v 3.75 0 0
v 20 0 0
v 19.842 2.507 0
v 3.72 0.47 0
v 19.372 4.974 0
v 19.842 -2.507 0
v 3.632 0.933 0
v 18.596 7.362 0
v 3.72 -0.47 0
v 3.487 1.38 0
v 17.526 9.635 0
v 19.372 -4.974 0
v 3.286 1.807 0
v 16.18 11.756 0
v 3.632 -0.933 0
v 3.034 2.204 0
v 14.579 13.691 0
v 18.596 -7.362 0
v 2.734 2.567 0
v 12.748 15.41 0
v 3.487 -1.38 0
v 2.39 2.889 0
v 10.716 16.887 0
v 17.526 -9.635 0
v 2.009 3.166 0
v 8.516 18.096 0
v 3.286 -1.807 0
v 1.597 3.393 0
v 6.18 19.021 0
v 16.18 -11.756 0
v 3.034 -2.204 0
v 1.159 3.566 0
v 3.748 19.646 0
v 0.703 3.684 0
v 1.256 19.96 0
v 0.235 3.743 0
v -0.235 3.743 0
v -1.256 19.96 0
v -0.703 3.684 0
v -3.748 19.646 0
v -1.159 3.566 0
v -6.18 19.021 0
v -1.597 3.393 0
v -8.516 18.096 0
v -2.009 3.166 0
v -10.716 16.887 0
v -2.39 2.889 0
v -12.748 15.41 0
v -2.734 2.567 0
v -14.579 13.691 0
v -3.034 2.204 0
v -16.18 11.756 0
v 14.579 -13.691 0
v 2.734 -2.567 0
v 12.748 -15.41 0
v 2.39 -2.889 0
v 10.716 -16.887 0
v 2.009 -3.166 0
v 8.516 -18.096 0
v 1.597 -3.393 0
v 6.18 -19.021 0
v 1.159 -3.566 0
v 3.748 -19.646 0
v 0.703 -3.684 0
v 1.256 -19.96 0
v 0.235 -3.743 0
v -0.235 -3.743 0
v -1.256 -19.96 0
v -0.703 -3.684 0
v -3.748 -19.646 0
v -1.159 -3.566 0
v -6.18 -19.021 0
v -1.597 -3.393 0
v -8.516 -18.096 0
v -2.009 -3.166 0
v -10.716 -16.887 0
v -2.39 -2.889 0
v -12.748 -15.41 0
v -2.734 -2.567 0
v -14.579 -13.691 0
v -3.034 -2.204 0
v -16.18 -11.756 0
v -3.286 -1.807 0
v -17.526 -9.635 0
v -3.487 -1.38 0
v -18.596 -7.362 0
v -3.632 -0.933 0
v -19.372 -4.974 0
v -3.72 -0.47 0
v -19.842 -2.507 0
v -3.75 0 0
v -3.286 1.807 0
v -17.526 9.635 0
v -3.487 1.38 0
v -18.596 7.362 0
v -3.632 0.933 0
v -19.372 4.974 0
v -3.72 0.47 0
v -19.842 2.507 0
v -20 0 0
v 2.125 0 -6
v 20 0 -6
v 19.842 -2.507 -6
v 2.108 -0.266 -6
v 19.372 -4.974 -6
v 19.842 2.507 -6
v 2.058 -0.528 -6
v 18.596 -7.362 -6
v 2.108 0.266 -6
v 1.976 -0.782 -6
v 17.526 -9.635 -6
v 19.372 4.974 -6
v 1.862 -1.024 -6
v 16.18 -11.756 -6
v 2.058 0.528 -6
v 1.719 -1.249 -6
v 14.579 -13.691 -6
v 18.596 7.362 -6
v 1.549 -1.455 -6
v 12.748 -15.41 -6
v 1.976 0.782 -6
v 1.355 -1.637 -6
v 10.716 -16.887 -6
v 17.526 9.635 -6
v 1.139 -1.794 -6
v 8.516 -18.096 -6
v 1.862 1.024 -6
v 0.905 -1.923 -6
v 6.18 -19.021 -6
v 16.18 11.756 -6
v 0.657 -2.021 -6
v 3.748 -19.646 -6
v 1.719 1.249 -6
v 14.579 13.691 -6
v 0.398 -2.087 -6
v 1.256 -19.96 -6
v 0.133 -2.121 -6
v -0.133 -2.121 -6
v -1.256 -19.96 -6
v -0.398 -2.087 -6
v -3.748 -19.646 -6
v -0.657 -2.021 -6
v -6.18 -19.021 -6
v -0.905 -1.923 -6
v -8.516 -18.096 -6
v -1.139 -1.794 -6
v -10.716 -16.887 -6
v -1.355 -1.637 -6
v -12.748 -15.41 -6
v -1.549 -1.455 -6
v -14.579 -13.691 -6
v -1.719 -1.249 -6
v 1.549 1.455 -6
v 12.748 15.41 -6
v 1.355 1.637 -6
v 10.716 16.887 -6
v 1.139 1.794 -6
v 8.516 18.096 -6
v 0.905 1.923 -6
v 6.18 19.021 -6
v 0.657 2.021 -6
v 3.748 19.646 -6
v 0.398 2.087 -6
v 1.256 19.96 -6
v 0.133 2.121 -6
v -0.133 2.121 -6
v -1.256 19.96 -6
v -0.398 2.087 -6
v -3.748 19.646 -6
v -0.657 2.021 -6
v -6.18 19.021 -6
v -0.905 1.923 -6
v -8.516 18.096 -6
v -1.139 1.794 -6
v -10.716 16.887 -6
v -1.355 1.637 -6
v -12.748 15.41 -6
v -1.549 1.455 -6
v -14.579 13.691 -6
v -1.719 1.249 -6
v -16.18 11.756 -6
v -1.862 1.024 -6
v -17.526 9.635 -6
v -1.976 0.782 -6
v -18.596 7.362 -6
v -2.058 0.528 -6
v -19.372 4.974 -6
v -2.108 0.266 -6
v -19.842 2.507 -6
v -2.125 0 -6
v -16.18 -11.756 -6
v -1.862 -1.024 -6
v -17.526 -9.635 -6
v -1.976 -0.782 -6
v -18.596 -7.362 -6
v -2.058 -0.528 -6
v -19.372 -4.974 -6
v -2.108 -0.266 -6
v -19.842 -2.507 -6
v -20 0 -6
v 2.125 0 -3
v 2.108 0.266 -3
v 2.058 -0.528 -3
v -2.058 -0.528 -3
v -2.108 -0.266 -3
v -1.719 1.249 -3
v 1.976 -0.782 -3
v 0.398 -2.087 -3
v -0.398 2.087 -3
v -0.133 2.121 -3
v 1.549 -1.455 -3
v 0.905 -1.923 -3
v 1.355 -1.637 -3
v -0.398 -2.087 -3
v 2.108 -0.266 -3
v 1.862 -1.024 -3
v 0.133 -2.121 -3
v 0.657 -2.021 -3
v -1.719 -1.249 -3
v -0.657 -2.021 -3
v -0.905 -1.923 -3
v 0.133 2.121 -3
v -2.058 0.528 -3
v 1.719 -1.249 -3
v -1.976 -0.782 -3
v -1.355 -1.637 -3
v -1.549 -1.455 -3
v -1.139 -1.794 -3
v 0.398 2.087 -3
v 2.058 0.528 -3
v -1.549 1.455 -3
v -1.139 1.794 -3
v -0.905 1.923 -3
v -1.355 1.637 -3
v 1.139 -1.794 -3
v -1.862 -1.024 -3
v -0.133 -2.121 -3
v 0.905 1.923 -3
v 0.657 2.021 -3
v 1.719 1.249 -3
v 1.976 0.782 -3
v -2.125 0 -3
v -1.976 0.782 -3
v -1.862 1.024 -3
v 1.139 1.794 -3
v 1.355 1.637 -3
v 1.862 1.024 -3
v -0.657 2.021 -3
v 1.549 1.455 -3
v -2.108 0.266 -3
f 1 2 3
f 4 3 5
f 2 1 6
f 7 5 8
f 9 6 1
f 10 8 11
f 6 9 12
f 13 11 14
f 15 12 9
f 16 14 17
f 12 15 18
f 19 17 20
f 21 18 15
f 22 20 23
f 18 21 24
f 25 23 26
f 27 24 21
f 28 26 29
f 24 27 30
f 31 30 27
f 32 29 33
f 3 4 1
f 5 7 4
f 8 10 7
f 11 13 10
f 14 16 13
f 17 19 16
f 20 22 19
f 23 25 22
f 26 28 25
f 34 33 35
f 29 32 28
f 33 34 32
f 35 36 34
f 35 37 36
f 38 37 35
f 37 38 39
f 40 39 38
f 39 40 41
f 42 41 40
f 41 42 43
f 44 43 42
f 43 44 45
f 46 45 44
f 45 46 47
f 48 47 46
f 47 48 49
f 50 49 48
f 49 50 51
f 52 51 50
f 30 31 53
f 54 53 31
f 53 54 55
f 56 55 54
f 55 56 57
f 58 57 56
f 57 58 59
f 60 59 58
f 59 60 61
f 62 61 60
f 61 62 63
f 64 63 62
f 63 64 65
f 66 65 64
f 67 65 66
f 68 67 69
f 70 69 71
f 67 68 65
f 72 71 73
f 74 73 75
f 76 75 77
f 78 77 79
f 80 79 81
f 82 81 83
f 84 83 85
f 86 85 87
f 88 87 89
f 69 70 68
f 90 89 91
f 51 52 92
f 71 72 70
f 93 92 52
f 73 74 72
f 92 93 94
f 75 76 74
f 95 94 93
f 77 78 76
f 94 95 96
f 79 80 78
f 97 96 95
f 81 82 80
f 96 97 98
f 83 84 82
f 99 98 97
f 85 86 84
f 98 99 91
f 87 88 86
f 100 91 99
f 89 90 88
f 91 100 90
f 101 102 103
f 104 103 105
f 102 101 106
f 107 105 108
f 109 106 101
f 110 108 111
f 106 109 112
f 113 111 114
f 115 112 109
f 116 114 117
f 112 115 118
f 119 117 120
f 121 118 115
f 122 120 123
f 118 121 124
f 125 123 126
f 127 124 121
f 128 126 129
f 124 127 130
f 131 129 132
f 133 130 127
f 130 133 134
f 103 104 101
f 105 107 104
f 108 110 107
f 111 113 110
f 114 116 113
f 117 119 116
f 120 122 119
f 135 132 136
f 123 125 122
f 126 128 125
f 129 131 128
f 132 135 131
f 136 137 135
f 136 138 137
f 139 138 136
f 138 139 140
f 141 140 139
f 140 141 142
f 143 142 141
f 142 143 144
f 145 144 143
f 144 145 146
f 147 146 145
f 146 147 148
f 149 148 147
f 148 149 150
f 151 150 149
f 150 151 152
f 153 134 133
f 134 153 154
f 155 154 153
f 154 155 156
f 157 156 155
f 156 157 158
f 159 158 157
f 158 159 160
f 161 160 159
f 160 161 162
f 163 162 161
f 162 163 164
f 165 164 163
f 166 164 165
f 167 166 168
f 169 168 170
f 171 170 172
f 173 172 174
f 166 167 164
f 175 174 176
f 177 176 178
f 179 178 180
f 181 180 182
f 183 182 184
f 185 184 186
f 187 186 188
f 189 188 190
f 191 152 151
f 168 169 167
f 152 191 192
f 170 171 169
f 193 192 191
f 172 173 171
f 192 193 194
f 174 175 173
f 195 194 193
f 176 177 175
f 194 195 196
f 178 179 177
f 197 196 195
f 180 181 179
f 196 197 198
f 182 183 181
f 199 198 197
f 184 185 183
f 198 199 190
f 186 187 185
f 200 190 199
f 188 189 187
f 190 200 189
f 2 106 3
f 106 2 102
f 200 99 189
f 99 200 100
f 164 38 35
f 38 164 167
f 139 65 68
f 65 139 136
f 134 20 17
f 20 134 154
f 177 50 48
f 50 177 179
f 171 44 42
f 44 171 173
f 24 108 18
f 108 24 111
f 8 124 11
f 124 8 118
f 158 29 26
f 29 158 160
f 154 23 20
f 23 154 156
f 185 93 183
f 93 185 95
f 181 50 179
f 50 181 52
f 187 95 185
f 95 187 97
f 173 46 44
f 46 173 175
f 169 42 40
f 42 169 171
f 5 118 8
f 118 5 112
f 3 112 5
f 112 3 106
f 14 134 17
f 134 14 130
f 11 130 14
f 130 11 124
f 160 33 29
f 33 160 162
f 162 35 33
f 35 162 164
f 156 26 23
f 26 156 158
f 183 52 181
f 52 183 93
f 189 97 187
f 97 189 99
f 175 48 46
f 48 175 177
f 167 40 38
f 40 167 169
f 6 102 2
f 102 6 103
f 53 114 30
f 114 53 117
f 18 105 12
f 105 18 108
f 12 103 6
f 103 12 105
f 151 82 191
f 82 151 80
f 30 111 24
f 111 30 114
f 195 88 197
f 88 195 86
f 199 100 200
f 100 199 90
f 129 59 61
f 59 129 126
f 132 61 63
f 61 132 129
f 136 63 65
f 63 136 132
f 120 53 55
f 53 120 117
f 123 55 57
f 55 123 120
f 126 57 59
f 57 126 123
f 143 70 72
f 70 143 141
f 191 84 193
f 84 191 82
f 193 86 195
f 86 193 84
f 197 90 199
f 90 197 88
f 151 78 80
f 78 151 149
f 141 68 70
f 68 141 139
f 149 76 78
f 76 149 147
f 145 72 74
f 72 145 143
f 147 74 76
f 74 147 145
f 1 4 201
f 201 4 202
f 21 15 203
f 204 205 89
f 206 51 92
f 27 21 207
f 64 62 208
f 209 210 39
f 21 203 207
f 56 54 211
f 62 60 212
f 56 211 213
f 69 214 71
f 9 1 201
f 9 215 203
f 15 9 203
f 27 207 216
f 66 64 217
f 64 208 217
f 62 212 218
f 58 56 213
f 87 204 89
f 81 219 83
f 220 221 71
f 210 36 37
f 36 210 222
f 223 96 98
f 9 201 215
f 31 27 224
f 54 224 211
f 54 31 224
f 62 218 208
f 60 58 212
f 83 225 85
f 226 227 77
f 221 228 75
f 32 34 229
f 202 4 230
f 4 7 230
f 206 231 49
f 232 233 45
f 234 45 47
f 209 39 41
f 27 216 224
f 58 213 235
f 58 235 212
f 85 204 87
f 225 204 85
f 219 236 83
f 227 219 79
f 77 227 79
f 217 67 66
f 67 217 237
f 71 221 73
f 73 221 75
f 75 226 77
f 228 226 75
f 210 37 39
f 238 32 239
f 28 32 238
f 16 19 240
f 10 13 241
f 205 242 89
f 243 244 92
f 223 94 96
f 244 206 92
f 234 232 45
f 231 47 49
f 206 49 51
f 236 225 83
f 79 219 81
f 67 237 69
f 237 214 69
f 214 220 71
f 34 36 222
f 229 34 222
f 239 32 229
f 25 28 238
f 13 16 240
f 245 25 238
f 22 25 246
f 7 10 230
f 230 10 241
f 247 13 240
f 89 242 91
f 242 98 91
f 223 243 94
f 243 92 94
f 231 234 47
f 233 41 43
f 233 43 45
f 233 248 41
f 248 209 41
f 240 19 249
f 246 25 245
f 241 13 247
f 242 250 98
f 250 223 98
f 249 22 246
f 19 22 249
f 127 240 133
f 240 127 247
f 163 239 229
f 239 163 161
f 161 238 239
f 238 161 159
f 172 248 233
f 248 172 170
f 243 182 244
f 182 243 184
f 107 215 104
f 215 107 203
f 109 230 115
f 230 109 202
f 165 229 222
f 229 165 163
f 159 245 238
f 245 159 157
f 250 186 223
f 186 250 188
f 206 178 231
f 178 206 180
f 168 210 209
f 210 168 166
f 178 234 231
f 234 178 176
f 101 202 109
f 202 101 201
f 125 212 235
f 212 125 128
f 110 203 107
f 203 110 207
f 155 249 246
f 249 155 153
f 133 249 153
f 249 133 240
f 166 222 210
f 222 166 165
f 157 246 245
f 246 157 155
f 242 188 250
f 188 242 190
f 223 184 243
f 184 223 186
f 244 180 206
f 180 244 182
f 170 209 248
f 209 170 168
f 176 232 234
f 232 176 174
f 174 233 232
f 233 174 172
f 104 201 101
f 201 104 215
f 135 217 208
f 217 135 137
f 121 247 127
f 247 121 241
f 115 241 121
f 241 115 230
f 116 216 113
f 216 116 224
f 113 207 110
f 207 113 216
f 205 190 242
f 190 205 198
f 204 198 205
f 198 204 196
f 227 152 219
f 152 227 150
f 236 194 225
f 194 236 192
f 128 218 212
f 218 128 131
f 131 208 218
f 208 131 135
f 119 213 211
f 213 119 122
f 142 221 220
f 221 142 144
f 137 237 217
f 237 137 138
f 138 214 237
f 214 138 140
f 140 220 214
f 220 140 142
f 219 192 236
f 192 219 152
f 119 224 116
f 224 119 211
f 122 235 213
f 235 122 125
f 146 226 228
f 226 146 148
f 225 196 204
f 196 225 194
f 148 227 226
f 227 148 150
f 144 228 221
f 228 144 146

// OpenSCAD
$fn = 50;


difference() {
	union() {
		translate(v = [0, 0, -6.0000000000]) {
			cylinder(h = 6, r = 10.0000000000);
		}
		translate(v = [0, 0, -6.0000000000]) {
			cylinder(h = 6, r = 20.0000000000);
		}
	}
	union() {
		translate(v = [0, 0, 0]) {
			rotate(a = [0, 0, 0]) {
				difference() {
					union() {
						#translate(v = [0, 0, -6.0000000000]) {
							cylinder(h = 6, r = 2.0000000000);
						}
						#translate(v = [0, 0, -3]) {
							cylinder(h = 3, r = 10.0000000000, r1 = 2.1250000000, r2 = 3.7500000000);
						}
						#translate(v = [0, 0, -6.0000000000]) {
							cylinder(h = 6, r = 2.1250000000);
						}
						#translate(v = [0, 0, -6.0000000000]) {
							cylinder(h = 6, r = 2.0000000000);
						}
					}
					union();
				}
			}
		}
	}
}
